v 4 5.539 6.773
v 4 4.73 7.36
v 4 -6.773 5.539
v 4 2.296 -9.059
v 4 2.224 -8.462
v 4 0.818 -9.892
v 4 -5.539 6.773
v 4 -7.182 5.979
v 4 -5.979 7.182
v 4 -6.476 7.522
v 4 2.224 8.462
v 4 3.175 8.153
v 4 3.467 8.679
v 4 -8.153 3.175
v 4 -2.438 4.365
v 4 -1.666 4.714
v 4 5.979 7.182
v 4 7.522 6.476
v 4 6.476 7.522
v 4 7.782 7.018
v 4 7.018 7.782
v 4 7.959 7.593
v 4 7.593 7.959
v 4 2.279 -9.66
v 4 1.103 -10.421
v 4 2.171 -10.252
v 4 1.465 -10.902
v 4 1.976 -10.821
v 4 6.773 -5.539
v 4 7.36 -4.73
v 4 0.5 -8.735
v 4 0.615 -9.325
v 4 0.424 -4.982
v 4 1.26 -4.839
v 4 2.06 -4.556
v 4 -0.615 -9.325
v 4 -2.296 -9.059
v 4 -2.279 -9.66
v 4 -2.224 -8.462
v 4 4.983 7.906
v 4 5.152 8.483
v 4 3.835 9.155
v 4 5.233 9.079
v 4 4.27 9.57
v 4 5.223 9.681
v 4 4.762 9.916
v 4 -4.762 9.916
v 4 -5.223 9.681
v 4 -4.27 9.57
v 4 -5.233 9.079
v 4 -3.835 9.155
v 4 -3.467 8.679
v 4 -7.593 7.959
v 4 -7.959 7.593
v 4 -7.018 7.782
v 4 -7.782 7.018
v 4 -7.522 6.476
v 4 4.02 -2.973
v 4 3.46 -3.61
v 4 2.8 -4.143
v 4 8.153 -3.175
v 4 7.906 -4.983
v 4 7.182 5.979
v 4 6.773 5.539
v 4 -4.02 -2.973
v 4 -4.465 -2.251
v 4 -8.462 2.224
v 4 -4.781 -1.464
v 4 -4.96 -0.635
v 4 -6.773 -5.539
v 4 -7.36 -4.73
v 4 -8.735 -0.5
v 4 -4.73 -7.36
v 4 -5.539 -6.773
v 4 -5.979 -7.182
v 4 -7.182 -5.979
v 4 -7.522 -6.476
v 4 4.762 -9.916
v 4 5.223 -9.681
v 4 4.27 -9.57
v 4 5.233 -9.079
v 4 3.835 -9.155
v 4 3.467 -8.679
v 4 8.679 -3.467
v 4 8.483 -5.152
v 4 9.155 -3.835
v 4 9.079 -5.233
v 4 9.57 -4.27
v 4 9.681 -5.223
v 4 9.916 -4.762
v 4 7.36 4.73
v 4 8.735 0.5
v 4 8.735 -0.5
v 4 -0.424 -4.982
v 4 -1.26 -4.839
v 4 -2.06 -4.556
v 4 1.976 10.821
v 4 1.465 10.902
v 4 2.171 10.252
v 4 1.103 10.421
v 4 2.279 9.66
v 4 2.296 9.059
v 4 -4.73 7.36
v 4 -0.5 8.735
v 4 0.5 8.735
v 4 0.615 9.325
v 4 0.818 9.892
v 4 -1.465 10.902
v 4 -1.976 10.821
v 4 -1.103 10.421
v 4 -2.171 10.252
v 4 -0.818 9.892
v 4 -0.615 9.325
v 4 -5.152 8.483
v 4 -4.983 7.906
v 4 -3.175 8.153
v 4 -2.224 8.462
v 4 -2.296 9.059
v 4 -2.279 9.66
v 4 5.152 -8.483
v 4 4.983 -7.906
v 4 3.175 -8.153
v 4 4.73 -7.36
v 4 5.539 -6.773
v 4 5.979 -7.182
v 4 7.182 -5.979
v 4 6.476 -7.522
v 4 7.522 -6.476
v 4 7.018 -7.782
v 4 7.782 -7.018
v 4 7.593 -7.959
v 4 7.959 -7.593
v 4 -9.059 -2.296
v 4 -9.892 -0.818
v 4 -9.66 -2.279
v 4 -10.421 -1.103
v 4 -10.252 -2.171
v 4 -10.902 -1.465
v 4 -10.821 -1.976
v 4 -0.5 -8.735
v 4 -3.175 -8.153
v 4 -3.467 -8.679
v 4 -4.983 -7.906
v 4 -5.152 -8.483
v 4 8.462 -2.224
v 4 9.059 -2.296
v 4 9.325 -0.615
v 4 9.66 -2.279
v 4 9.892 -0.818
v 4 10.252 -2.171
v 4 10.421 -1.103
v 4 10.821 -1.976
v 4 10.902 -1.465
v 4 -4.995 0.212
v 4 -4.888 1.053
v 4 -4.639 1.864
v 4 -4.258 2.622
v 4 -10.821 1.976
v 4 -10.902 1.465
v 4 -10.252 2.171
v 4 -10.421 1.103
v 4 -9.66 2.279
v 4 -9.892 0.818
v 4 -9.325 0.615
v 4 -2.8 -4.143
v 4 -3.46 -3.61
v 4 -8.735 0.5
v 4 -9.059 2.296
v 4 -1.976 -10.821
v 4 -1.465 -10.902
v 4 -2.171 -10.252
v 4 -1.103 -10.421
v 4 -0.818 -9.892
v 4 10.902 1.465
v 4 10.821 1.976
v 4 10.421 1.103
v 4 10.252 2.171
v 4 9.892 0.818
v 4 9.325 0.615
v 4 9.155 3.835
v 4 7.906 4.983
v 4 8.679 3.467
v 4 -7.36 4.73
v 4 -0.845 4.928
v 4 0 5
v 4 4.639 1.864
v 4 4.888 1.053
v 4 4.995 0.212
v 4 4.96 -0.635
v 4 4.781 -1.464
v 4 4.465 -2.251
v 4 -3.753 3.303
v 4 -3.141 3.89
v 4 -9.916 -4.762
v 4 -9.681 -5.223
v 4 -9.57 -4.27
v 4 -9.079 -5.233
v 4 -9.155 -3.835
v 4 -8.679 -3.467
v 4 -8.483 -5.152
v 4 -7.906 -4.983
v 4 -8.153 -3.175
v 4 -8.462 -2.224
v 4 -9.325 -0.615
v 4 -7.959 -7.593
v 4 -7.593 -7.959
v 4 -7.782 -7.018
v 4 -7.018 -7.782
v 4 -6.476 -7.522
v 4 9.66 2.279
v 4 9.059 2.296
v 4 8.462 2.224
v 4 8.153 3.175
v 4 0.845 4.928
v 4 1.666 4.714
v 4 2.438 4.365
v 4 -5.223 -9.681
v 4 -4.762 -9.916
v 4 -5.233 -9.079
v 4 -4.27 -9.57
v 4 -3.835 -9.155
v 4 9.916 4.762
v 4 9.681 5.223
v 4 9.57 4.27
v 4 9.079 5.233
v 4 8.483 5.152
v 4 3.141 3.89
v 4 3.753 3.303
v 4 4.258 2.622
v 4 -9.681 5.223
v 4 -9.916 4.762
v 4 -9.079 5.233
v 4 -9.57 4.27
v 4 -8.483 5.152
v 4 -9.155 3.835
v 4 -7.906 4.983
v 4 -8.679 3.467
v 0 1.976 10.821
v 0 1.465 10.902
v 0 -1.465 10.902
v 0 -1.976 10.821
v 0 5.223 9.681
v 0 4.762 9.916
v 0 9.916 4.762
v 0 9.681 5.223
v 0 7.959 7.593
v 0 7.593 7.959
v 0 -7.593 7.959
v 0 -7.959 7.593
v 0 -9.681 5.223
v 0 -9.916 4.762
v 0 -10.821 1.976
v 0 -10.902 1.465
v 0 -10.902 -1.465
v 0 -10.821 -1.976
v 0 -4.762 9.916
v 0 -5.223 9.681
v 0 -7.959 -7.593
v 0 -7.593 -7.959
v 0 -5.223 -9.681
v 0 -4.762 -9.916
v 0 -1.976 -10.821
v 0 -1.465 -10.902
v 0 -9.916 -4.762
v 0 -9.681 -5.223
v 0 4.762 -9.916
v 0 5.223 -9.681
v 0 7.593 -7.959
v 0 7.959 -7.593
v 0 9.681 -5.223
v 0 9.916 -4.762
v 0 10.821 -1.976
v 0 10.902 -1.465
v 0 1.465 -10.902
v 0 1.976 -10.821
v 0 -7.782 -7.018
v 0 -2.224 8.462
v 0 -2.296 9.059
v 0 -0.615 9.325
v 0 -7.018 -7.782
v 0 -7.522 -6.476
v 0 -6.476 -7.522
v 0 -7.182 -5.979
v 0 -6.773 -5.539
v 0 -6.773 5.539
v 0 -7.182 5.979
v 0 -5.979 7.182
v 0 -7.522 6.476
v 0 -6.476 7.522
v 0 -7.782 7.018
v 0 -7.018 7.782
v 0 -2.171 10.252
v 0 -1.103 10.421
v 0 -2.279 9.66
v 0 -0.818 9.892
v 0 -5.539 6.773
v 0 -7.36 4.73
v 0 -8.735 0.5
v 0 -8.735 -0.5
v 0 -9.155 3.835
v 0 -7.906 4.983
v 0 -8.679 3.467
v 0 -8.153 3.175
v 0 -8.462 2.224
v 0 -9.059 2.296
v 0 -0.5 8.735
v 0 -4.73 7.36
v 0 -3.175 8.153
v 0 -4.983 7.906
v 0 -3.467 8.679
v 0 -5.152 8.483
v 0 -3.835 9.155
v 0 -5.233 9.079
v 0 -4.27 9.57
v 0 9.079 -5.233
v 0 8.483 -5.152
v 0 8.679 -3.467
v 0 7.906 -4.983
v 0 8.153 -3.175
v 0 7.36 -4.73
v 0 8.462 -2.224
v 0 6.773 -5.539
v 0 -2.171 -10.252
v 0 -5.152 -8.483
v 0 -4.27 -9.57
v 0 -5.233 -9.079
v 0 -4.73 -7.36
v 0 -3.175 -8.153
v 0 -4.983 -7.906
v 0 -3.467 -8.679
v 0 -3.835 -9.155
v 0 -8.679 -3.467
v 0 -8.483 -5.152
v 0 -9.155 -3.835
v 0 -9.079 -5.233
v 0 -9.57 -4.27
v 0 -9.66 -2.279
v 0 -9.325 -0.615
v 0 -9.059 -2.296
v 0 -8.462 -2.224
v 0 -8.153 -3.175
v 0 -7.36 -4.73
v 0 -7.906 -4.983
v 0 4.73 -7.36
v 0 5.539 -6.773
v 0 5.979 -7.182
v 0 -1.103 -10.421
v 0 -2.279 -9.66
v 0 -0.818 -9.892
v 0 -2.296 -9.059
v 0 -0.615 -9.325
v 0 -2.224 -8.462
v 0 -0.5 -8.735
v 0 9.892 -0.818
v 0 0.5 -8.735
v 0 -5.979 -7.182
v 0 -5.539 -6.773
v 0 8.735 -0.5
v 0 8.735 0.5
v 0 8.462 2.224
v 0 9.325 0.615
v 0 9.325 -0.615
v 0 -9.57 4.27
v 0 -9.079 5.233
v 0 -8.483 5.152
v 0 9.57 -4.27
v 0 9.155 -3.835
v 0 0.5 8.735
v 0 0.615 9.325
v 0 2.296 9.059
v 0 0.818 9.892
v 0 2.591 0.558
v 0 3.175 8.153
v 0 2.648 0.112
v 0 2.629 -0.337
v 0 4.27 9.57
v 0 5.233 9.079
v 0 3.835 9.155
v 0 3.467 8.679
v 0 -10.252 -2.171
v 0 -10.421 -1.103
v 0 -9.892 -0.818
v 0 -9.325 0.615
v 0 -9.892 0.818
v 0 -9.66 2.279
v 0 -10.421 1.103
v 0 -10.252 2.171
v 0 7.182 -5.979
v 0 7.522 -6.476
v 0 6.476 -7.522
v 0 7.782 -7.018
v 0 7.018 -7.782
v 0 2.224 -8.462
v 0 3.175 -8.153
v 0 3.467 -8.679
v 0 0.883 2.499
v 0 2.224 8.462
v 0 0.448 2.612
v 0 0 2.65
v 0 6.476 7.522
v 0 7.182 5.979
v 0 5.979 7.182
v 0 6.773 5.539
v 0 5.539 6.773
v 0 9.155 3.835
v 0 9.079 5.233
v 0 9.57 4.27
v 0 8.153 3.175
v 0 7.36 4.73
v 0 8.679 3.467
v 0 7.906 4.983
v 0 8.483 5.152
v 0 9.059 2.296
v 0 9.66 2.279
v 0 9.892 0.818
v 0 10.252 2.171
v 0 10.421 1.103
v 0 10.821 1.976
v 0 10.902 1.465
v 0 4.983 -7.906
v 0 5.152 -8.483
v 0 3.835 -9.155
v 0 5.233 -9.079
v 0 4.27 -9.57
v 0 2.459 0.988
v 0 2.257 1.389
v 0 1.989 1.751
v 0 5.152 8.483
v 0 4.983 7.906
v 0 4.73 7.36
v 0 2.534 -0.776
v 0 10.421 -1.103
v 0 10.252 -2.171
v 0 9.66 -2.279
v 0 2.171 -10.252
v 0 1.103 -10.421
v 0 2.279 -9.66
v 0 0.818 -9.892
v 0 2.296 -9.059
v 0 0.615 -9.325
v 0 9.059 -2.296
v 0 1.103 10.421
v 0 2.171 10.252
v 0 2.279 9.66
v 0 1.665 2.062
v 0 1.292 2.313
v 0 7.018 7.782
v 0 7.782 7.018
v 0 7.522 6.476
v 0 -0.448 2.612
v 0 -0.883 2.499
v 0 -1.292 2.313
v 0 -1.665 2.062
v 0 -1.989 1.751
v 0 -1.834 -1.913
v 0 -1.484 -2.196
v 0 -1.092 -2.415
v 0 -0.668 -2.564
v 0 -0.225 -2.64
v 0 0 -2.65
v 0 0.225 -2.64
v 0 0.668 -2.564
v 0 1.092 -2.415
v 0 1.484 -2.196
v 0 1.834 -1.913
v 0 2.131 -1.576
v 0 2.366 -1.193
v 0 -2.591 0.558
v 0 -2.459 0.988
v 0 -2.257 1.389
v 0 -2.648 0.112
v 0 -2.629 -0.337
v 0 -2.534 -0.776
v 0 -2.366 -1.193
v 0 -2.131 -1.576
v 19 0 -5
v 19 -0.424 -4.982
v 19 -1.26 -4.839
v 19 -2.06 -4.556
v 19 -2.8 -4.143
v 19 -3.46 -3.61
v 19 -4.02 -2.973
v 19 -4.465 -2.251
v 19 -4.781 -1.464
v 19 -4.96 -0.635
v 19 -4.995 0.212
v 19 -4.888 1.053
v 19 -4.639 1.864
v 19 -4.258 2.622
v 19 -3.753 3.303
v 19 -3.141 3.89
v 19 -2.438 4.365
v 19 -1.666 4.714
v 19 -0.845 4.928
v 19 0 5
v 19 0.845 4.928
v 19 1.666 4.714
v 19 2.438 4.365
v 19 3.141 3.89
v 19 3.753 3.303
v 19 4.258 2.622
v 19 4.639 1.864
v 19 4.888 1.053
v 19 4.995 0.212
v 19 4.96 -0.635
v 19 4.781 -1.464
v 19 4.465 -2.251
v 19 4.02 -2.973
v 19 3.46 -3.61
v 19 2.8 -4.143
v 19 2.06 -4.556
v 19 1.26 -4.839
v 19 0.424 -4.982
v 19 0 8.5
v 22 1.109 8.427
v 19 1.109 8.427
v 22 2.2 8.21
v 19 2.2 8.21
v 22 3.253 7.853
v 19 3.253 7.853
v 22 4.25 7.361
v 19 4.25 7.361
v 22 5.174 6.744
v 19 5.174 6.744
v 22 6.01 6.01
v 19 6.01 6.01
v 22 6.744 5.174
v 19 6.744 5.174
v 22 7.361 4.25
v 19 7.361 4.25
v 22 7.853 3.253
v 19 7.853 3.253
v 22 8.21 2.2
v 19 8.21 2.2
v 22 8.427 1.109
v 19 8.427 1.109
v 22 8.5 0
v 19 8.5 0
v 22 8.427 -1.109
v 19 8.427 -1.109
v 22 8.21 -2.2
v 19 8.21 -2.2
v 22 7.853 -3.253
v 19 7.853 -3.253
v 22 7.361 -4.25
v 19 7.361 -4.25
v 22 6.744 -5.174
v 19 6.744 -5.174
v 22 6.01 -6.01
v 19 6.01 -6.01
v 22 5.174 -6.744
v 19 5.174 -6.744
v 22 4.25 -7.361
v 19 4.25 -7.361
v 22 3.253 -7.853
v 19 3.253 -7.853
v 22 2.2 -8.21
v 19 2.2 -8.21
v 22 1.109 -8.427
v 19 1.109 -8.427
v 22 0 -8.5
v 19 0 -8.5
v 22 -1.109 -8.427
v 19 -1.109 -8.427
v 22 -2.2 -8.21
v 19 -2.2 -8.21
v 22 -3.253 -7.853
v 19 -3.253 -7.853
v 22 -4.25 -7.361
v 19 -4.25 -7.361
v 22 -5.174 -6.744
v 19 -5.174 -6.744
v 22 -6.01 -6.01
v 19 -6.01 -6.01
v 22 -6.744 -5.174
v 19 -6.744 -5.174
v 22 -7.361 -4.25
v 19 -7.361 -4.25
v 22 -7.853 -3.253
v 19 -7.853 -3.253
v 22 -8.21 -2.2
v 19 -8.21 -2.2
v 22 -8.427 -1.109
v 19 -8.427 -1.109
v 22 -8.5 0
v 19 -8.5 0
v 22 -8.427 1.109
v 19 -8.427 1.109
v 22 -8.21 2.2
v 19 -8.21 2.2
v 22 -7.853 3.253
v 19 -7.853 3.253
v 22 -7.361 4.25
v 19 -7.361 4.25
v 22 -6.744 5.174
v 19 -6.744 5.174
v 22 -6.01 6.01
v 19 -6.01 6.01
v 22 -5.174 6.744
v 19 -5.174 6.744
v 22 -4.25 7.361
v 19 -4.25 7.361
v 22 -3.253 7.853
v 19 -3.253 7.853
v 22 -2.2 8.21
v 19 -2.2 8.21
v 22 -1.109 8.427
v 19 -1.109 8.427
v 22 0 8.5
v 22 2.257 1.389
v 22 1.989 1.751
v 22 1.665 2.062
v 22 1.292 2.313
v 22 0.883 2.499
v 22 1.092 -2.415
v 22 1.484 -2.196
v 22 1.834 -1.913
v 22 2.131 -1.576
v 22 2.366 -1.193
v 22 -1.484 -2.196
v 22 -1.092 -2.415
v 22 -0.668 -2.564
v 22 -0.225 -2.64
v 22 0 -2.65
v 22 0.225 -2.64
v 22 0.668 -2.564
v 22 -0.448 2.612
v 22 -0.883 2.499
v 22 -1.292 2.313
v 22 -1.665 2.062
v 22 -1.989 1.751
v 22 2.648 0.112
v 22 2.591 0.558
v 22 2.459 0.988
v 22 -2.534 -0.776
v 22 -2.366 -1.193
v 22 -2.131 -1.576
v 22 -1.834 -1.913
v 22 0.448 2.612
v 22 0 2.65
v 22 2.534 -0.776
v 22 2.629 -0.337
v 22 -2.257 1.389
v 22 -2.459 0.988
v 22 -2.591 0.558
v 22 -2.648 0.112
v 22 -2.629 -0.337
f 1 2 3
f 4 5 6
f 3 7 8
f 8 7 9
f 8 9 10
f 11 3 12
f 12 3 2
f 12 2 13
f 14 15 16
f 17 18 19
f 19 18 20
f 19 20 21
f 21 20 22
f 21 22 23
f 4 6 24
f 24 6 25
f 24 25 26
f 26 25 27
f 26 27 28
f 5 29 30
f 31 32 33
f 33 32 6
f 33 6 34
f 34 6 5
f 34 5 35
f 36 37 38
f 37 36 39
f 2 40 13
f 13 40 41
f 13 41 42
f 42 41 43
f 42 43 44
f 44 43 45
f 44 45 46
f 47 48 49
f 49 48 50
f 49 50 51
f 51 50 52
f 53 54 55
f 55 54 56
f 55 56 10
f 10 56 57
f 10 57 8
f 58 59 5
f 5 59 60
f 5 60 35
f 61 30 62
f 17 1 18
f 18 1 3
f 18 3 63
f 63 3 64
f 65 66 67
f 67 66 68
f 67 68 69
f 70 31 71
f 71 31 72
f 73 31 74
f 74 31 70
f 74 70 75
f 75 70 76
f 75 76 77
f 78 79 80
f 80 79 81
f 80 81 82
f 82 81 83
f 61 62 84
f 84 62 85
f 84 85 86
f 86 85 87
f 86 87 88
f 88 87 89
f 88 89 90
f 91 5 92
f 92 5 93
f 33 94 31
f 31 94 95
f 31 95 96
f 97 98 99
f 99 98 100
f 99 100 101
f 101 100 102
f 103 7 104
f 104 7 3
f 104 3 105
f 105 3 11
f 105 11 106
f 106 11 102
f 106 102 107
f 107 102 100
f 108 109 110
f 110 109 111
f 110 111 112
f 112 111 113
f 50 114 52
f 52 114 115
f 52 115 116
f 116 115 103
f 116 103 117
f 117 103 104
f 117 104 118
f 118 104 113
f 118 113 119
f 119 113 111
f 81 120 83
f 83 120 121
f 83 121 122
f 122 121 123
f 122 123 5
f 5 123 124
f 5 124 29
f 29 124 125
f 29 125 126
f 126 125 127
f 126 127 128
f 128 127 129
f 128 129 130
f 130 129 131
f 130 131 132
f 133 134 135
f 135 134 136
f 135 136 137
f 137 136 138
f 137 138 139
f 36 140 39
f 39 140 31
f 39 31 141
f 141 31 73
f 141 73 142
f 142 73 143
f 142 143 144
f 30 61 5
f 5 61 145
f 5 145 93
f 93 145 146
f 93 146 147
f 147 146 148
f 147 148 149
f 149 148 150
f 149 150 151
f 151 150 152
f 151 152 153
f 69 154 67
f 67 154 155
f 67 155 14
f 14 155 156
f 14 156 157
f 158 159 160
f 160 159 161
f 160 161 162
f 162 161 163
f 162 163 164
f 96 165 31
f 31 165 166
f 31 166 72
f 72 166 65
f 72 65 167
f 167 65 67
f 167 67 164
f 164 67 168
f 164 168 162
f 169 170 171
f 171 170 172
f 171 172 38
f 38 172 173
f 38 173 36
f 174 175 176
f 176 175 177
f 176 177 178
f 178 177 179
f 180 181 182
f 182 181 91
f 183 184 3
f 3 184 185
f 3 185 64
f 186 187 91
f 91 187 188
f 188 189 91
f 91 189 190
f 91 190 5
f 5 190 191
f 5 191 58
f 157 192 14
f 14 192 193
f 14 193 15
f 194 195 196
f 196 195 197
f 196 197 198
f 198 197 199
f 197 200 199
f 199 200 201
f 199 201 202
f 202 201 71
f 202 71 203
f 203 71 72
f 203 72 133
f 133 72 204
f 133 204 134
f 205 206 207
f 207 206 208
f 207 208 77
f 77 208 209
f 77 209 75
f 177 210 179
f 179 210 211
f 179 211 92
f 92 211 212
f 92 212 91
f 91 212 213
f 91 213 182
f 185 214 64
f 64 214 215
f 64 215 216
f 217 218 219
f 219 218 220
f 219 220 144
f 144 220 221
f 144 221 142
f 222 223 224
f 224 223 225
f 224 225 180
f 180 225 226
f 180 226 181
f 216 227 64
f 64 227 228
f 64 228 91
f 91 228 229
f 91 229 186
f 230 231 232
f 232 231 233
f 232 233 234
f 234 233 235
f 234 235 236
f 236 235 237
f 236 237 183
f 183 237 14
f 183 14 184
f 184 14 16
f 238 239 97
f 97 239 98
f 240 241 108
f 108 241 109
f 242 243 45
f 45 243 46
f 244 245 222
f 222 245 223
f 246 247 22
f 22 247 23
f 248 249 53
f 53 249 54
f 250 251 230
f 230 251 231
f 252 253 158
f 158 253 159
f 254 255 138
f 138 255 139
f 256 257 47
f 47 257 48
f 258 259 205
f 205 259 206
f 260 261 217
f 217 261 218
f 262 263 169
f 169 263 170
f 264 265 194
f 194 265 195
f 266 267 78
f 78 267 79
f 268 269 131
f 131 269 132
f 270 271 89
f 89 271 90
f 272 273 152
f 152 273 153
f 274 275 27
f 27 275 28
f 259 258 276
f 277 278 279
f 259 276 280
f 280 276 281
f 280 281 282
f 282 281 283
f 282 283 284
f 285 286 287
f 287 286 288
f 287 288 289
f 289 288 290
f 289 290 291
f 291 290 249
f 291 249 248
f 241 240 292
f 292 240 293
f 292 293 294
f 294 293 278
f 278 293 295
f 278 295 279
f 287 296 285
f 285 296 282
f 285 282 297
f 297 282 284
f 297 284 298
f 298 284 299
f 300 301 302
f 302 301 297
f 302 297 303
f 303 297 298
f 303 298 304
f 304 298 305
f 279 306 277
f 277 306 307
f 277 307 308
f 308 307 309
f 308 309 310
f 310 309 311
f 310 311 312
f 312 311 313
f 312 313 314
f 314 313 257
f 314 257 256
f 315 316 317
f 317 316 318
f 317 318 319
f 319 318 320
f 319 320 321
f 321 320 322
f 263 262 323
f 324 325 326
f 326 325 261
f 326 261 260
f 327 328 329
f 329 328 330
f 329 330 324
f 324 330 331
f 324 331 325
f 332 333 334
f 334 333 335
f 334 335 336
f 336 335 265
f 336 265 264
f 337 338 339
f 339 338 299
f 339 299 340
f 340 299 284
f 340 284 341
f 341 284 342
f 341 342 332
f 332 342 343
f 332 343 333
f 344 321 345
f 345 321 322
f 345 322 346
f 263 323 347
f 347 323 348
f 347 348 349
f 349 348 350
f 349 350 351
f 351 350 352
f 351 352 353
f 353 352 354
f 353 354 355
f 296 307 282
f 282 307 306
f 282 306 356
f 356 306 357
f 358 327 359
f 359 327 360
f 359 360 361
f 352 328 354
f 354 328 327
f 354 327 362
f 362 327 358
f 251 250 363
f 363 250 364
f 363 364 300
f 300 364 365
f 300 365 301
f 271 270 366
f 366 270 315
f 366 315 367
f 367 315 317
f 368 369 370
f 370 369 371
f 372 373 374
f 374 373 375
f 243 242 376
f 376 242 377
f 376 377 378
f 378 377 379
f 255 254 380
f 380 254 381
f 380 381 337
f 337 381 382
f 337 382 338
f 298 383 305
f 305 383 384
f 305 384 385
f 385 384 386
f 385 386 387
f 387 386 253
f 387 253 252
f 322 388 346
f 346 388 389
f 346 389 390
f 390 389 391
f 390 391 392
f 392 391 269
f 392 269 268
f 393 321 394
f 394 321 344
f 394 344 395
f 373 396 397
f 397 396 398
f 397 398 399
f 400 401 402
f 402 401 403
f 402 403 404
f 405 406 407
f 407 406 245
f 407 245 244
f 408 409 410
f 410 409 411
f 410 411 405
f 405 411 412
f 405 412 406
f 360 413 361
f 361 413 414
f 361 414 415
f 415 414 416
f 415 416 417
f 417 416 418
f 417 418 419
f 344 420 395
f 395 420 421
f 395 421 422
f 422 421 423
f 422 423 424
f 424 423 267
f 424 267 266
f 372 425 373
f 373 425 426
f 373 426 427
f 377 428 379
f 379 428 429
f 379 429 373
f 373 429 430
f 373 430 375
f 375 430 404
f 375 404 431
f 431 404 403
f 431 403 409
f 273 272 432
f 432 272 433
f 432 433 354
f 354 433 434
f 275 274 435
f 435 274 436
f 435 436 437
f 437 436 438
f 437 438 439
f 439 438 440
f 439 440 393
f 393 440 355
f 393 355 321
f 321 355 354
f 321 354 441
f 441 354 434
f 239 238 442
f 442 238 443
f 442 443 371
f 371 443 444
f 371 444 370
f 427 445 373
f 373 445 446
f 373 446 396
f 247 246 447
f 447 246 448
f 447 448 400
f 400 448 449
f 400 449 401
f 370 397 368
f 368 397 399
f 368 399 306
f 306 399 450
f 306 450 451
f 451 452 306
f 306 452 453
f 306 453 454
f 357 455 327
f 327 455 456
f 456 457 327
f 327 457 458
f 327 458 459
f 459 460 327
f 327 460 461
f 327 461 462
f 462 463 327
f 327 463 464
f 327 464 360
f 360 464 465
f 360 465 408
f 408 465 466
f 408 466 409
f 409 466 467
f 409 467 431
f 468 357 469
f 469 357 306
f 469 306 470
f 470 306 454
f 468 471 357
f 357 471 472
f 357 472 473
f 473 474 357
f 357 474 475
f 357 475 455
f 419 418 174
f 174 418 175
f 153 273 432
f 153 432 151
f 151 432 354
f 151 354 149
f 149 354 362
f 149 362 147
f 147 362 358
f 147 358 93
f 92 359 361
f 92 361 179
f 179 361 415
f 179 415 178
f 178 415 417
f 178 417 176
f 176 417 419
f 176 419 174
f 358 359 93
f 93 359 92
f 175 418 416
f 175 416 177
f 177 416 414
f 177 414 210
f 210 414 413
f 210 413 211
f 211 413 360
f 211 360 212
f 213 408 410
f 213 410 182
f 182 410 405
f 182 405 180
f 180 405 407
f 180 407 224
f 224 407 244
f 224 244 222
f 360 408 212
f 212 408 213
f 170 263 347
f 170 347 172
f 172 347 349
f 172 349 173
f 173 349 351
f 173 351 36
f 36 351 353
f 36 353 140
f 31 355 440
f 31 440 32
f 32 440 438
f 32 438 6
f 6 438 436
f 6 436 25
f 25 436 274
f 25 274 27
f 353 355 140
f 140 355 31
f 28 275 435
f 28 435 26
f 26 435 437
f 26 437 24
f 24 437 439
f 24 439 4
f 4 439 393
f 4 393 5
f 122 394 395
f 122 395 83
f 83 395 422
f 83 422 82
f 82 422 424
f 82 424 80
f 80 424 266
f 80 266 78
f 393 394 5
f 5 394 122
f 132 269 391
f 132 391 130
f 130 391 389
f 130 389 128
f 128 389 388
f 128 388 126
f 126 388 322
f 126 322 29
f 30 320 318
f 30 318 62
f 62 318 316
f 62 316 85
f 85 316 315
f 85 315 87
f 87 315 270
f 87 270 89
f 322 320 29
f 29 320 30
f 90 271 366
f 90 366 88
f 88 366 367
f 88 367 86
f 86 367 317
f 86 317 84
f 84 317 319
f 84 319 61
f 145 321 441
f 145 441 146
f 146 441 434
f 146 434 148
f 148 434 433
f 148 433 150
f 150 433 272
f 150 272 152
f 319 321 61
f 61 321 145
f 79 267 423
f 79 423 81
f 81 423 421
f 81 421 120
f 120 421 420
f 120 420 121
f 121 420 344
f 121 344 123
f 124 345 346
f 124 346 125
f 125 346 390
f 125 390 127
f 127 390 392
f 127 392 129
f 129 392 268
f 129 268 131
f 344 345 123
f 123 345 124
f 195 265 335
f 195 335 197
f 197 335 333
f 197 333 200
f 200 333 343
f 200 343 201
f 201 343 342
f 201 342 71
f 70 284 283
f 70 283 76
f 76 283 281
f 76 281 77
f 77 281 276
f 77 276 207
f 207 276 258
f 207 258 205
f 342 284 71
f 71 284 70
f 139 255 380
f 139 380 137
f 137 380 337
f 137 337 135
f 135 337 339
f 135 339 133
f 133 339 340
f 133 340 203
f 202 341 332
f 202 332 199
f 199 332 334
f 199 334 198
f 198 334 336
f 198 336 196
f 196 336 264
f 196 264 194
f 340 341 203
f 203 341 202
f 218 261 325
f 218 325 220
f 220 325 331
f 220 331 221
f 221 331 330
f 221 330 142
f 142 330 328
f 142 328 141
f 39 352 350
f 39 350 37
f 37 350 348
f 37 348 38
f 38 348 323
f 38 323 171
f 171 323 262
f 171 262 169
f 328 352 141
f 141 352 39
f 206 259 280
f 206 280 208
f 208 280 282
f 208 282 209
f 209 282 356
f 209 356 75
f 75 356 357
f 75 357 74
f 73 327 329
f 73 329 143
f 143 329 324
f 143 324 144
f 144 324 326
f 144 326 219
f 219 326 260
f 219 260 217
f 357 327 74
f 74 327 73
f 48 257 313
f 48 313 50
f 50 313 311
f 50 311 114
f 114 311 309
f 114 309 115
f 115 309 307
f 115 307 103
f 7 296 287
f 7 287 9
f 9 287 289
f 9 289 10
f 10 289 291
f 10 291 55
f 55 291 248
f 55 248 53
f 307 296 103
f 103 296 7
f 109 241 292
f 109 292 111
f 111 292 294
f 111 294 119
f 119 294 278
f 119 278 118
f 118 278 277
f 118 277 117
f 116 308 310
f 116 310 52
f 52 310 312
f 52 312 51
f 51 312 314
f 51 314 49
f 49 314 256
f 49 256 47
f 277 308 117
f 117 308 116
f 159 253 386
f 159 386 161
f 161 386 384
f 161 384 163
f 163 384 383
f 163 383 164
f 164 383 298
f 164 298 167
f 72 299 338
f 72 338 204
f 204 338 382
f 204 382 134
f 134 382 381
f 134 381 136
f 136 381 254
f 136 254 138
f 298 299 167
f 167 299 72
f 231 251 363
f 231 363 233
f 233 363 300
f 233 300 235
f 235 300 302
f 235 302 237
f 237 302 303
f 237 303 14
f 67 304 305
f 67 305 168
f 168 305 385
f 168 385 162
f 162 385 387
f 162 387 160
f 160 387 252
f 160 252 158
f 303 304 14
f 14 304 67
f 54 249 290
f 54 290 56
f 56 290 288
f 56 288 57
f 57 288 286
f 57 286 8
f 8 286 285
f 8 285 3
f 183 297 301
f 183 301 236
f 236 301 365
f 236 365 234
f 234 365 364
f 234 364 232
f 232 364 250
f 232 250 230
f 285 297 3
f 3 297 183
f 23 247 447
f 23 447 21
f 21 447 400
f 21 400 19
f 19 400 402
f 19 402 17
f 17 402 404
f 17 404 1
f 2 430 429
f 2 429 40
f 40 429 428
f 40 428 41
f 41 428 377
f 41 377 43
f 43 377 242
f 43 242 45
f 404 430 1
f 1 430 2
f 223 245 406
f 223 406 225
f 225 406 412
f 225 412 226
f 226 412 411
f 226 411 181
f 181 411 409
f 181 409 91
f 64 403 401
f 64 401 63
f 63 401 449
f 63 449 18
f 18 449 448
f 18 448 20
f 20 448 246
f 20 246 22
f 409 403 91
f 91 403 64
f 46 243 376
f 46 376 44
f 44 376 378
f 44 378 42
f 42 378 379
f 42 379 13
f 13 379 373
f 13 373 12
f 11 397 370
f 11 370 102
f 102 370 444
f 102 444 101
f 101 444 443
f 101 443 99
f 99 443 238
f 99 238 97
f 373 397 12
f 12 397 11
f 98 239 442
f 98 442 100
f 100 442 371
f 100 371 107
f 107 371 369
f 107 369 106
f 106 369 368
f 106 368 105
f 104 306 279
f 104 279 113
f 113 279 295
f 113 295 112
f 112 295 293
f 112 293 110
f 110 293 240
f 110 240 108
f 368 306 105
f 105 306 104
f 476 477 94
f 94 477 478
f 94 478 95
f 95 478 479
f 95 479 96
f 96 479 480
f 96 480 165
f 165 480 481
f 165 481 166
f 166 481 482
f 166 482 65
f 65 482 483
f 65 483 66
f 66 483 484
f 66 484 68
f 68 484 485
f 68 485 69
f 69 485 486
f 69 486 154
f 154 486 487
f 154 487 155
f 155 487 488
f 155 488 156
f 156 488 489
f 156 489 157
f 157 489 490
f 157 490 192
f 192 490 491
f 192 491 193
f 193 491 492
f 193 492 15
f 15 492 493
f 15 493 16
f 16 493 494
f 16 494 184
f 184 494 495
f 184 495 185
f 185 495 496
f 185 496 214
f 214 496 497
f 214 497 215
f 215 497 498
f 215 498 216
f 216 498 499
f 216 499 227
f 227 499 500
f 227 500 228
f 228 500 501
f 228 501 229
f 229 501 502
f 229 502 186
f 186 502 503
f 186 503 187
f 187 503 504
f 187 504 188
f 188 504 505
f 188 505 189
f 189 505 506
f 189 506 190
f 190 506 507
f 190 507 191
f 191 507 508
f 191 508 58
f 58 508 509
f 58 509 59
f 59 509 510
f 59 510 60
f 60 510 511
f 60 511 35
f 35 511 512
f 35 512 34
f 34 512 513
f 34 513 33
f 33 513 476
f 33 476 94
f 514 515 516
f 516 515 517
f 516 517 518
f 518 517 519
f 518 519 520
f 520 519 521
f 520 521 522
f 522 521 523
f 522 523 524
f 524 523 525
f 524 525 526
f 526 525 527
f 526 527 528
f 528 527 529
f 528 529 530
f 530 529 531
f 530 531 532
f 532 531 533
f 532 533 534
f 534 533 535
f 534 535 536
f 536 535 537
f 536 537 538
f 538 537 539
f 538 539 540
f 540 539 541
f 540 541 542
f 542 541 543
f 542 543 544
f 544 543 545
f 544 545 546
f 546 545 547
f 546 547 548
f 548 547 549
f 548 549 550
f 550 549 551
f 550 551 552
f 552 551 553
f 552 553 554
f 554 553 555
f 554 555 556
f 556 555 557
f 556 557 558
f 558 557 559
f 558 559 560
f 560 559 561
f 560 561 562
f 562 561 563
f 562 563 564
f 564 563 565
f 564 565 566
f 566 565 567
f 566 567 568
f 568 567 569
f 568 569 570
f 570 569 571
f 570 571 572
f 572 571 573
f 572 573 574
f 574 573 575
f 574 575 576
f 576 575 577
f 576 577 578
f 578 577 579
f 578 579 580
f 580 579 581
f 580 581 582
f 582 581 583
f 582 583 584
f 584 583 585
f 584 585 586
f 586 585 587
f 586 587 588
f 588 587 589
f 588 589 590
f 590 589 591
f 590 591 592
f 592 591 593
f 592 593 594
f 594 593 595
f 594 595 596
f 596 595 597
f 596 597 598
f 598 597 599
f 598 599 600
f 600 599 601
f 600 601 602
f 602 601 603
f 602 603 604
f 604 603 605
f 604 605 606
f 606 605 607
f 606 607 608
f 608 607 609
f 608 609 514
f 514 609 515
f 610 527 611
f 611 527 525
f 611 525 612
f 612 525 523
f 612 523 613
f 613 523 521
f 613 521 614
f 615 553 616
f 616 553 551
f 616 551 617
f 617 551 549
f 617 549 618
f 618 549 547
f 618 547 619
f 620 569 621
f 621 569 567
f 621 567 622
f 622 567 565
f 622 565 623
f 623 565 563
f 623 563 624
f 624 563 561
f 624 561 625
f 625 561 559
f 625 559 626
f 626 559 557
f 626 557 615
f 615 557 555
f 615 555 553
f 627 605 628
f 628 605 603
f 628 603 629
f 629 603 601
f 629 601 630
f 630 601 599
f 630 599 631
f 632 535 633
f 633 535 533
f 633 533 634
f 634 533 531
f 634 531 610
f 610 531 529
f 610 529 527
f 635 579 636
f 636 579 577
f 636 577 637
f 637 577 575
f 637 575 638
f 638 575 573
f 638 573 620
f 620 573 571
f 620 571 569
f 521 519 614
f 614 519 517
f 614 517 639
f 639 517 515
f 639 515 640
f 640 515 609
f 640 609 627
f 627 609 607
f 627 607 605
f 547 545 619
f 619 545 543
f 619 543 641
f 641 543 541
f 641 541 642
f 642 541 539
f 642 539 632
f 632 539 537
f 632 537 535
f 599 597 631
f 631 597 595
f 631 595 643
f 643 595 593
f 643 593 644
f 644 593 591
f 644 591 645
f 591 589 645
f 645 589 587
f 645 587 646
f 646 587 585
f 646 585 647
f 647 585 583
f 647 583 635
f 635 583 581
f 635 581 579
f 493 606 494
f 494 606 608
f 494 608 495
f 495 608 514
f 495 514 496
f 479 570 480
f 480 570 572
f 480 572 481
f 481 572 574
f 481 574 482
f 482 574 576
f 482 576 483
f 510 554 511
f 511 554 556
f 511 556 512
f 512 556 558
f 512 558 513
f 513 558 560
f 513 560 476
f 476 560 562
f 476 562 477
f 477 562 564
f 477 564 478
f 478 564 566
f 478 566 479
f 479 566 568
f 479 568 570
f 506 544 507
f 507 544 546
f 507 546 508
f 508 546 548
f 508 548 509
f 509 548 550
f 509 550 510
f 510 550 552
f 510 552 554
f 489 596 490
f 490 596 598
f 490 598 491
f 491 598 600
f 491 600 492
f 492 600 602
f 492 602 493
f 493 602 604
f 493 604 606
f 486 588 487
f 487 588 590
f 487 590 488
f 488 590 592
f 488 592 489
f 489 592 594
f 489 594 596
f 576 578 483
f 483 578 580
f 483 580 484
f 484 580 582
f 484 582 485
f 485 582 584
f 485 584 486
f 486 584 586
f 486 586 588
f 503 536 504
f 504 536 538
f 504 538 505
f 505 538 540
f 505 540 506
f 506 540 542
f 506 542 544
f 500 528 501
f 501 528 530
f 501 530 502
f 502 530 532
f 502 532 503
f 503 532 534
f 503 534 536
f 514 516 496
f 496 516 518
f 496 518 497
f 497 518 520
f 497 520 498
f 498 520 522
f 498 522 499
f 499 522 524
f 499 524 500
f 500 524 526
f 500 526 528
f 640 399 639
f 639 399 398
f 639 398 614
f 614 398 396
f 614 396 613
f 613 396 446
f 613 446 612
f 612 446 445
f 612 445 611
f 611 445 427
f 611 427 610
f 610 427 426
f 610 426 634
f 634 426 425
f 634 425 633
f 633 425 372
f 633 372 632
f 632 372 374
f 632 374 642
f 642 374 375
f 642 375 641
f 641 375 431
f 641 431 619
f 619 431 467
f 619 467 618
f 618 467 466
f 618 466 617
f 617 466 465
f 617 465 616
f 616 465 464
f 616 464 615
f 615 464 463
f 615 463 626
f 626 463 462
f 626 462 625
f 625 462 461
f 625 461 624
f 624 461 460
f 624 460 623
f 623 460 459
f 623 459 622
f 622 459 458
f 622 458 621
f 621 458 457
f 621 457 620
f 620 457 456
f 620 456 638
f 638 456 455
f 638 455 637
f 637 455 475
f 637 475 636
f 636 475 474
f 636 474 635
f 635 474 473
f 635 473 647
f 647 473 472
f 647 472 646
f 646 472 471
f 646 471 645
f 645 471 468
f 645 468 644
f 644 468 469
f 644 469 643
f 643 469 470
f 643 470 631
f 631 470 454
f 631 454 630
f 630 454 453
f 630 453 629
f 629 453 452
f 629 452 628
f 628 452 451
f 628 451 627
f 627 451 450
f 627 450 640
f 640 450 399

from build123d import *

# Parameters (mm, degrees)
BASPROSKE_W             = 4
BASPROSKE_H             = 11
TOOTHCUT_DEPTH          = 17.062378404
TEETHCUTS_COUNT         = 20
TEETHCUTS_ANGLE         = 342
BORSKE_R                = 2.5
BORE_DEPTH              = 50.0000508
SKETCH2_R               = 5
BOSS_EXTRUDE2_DEPTH     = 15
SKETCH3_R               = 8.5
BOSS_EXTRUDE3_DEPTH     = 3
SKETCH4_R               = 2.65
CUT_EXTRUDE1_DEPTH      = 27.864619954
CUT_EXTRUDE1_DEPTH_BACK = 27.864619954


with BuildPart() as part:
    # BasProSke → Base-Revolve (revolve)
    with BuildSketch(Plane(origin=(0, 0, 0), x_dir=(1, 0, 0), z_dir=(0, 1, 0)), mode=Mode.PRIVATE) as base_revolve_sk:
        with Locations((2, 5.5)):
            Rectangle(BASPROSKE_W, BASPROSKE_H)
    revolve(base_revolve_sk.sketch.rotate(Axis((-10, 0, 0), (1, 0, 0)), 180), axis=Axis((-10, 0, 0), (1, 0, 0)))

    # TooCutSke → ToothCut (cut, through all)
    with BuildSketch(Plane(origin=(0, 0, 0), x_dir=(0, 0, -1), z_dir=(1, 0, 0))):
        with BuildLine():
            ThreePointArc((0.499924007, 8.734705318), (0, 8.749), (-0.499924007, 8.734705318))
            ThreePointArc((-0.499924007, 8.734705318), (-0.824302243, 9.905497836), (-1.485192705, 10.924909509))
            ThreePointArc((-1.485192705, 10.924909509), (0, 11.0254), (1.485192705, 10.924909509))
            ThreePointArc((1.485192705, 10.924909509), (0.824302243, 9.905497836), (0.499924007, 8.734705318))
        make_face()
    toothcut = extrude(amount=TOOTHCUT_DEPTH, mode=Mode.SUBTRACT)

    # TeethCuts: ToothCut ×20 about axis
    teethcuts_axis = Axis((-10, 0, 0), (1, 0, 0))
    for i in range(1, TEETHCUTS_COUNT):
        add(toothcut.rotate(teethcuts_axis, i * TEETHCUTS_ANGLE / (TEETHCUTS_COUNT - 1)), mode=Mode.SUBTRACT)

    # BorSke → Bore (cut, symmetric)
    with BuildSketch(Plane(origin=(0, 0, 0), x_dir=(0, 0, -1), z_dir=(1, 0, 0))):
        with Locations(Location((0, 0, 0), (0, 0, 180))):
            Circle(BORSKE_R)
    extrude(amount=BORE_DEPTH, both=True, mode=Mode.SUBTRACT)

    # Sketch2 → Boss-Extrude2 (add)
    with BuildSketch(Plane(origin=(4, 0, 0), x_dir=(0, 0, -1), z_dir=(1, 0, 0))):
        with Locations(Location((0, 0, 0), (0, 0, 180))):
            Circle(SKETCH2_R)
    extrude(amount=BOSS_EXTRUDE2_DEPTH)

    # Sketch3 → Boss-Extrude3 (add)
    with BuildSketch(Plane(origin=(19, 0, 0), x_dir=(0, 0, -1), z_dir=(1, 0, 0))):
        Circle(SKETCH3_R)
    extrude(amount=BOSS_EXTRUDE3_DEPTH)

    # Sketch4 → Cut-Extrude1 (cut, two sides)
    with BuildSketch(Plane(origin=(22, 0, 0), x_dir=(0, 0, -1), z_dir=(1, 0, 0))) as cut_extrude1_sk:
        with Locations(Location((0, 0, 0), (0, 0, 180))):
            Circle(SKETCH4_R)
    extrude(amount=CUT_EXTRUDE1_DEPTH, mode=Mode.SUBTRACT)
    extrude(cut_extrude1_sk.sketch, amount=-CUT_EXTRUDE1_DEPTH_BACK, mode=Mode.SUBTRACT)


solid = part.part
